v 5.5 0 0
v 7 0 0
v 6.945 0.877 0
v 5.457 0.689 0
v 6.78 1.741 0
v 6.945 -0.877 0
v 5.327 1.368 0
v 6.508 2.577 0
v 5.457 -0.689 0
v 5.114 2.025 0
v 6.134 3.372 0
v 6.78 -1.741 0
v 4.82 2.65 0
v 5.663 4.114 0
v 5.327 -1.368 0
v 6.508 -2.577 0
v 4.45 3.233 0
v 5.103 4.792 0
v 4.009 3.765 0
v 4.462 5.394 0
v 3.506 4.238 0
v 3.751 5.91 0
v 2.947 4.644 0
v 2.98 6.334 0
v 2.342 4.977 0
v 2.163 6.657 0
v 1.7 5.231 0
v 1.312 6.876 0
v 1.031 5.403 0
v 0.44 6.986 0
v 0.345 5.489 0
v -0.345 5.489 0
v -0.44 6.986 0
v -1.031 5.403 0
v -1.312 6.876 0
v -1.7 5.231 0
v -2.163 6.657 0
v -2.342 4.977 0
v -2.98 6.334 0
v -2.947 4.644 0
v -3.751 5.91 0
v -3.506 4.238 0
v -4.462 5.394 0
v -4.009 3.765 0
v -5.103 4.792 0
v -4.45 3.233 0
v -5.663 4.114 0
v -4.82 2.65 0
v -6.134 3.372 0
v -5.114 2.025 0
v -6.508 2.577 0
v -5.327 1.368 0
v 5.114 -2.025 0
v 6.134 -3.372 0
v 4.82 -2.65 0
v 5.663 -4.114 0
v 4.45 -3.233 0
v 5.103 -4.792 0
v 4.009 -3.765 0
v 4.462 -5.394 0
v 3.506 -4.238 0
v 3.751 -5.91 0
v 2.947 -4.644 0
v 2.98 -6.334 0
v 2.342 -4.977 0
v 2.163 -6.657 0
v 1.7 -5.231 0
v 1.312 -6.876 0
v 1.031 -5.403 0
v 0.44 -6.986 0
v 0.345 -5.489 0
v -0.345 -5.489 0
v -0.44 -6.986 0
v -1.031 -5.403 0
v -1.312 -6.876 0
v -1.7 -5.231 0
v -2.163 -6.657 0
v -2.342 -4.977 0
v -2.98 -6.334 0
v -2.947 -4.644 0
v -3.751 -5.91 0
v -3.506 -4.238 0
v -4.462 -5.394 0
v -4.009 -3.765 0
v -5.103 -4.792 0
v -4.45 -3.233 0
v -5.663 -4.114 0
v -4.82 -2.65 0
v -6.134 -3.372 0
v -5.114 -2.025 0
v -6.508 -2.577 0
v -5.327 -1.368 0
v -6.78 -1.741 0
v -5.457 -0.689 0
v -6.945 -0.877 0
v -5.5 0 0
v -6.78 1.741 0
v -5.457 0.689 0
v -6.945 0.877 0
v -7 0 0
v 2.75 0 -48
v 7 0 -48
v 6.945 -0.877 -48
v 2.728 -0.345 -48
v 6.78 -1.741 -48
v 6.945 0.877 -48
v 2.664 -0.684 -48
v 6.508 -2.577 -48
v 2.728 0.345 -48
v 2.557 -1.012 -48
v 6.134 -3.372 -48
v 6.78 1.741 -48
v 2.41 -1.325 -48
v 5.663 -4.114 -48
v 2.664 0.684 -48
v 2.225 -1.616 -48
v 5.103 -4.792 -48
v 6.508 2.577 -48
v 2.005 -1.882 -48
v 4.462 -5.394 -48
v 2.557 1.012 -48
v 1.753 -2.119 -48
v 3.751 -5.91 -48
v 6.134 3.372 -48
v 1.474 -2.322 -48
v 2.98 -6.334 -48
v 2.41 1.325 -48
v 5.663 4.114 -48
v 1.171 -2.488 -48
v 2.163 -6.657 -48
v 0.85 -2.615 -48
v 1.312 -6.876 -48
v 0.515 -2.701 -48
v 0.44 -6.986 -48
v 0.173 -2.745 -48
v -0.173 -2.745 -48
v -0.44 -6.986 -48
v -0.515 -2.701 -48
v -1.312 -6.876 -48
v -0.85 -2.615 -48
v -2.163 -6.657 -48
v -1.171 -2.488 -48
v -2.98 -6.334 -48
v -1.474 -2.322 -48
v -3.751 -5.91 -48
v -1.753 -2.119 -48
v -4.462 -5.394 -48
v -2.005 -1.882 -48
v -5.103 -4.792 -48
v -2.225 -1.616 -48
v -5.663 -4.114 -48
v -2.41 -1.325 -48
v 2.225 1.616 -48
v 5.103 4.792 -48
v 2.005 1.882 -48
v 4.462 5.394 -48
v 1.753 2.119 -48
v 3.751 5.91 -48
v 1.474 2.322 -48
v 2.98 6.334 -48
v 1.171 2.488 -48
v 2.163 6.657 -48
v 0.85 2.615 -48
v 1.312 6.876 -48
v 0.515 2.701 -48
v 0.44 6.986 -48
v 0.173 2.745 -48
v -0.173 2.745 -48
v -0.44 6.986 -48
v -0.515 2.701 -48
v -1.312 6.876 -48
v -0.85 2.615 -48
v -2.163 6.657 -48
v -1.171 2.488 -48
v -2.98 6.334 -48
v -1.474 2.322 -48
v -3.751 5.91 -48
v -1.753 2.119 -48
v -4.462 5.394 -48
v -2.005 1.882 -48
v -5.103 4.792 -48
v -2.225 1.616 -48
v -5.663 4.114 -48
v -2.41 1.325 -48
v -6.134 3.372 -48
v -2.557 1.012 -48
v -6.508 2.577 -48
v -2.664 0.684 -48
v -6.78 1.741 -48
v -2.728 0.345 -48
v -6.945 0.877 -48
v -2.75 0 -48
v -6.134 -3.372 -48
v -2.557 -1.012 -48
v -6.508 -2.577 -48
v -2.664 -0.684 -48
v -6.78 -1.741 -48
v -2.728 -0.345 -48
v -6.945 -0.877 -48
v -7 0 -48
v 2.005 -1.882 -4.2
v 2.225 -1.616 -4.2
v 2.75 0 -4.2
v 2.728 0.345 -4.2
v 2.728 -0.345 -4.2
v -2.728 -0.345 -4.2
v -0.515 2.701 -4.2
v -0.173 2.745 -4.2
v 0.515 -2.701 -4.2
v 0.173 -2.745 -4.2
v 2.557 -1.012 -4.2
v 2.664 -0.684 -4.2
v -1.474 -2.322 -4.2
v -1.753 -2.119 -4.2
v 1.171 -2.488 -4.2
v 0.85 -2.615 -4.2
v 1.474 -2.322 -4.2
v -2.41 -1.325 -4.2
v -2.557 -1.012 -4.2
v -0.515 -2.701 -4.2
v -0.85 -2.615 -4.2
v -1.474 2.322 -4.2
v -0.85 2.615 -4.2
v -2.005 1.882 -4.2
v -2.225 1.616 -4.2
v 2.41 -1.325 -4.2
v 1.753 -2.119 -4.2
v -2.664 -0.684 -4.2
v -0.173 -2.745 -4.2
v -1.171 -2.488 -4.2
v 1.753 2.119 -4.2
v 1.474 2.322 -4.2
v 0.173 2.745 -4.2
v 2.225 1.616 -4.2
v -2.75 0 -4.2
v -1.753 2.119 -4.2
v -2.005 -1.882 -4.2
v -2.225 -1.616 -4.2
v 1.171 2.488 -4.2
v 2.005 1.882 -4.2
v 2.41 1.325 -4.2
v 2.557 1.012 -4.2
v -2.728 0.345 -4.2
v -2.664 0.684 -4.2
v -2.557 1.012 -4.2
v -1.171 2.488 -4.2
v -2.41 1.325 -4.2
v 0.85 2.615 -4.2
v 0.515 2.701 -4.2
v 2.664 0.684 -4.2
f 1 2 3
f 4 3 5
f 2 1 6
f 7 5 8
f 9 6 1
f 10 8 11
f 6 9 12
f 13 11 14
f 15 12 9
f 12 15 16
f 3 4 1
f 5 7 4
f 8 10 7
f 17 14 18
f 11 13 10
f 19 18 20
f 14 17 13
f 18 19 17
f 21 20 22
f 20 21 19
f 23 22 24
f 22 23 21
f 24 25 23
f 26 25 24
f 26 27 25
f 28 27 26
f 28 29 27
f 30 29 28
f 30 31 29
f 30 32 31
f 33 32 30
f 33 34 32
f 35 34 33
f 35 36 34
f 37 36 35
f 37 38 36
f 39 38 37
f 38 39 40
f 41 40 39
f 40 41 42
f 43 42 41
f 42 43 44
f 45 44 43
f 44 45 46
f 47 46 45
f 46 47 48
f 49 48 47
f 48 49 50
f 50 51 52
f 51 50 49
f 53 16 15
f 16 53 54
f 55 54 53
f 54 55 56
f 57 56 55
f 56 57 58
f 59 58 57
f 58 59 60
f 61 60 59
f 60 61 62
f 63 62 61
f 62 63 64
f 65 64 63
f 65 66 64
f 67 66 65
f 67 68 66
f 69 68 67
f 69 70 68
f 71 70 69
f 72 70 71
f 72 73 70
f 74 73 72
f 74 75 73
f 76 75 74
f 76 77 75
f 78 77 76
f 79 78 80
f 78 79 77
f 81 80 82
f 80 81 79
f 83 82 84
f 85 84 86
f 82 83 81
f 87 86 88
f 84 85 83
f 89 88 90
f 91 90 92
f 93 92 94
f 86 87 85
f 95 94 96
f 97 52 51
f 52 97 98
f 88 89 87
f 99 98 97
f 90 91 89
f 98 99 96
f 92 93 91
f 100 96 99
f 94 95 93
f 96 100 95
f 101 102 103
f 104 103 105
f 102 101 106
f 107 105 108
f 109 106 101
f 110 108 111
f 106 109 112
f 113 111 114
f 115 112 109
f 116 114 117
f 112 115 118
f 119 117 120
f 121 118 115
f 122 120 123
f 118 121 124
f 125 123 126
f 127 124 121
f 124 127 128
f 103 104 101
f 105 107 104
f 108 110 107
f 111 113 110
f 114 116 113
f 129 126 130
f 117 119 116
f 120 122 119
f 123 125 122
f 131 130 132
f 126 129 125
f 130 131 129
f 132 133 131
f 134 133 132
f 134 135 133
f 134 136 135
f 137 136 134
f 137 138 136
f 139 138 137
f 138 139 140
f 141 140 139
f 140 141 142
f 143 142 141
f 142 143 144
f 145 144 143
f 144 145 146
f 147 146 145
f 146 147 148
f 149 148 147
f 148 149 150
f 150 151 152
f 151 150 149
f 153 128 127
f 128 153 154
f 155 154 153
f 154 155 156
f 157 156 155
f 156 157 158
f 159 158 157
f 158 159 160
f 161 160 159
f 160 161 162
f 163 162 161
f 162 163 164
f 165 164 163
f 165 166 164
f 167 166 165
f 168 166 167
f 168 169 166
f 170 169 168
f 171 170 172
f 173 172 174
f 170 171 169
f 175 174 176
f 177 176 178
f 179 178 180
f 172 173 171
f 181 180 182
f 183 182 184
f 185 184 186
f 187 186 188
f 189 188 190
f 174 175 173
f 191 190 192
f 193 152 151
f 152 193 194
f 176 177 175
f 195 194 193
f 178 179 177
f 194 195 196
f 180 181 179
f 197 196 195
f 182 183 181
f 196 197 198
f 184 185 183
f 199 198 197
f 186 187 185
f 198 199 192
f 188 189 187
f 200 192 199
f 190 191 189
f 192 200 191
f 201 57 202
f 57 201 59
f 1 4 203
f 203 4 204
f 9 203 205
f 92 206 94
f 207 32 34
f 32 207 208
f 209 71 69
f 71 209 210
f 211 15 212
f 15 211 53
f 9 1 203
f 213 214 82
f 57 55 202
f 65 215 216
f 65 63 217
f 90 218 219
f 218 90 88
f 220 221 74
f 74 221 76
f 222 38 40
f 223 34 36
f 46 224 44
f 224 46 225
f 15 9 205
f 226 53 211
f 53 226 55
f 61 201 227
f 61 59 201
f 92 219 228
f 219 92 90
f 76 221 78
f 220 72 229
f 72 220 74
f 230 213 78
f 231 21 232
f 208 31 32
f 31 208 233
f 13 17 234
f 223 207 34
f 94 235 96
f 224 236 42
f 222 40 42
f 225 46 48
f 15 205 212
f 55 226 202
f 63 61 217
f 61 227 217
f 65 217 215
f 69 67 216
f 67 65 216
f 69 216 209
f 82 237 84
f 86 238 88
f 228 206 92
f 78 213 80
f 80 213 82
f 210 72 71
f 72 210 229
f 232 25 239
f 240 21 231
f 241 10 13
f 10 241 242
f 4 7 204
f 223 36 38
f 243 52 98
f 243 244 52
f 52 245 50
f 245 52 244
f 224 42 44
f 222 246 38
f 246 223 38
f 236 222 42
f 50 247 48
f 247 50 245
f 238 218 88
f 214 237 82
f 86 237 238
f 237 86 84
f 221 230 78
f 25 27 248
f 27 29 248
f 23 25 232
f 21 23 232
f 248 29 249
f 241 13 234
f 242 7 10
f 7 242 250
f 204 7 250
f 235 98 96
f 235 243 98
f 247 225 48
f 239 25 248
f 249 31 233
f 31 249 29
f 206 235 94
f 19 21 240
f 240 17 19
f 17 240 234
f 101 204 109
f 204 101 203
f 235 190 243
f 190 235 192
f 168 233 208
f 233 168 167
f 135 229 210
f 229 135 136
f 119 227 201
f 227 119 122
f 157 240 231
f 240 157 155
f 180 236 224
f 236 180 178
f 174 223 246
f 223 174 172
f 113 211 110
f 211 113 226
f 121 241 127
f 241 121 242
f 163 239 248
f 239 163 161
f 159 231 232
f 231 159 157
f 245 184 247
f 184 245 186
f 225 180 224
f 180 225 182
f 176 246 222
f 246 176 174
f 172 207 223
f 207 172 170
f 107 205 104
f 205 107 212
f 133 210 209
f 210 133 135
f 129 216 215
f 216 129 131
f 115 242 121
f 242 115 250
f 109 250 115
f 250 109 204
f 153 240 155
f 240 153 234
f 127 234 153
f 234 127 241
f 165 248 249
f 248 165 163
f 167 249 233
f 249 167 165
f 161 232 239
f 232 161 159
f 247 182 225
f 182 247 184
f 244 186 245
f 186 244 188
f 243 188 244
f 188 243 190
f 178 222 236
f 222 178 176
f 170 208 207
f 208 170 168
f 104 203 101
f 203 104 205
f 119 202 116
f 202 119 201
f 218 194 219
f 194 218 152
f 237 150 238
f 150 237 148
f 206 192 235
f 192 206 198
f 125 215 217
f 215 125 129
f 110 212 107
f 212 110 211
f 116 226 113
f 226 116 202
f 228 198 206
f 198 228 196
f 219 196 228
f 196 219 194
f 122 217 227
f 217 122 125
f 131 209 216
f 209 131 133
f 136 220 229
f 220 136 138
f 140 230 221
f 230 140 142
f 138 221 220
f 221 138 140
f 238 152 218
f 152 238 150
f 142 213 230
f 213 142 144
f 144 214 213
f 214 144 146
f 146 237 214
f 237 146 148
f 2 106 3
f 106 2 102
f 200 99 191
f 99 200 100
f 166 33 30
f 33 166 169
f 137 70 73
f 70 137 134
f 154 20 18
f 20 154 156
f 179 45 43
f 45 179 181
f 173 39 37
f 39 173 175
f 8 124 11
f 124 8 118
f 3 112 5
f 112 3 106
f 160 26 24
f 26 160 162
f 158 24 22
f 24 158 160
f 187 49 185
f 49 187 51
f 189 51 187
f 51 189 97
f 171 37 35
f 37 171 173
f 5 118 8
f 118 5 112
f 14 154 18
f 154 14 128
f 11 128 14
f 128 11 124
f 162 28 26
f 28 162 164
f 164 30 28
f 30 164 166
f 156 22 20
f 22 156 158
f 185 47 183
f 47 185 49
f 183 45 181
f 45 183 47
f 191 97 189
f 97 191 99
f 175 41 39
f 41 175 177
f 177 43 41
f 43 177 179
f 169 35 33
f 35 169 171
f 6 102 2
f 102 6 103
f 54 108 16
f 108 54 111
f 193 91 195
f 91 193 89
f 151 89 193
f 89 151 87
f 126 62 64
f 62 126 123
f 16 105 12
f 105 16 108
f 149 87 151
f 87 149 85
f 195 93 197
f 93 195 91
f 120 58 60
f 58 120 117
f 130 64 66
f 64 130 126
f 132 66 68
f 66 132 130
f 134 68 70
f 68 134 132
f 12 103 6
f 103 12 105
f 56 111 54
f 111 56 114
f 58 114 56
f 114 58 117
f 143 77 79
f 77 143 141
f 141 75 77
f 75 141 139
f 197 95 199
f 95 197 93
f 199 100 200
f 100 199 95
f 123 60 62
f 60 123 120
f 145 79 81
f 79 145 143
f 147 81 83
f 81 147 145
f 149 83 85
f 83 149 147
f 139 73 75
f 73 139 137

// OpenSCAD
$fn = 50;


difference() {
	union() {
		translate(v = [0, 0, -48.0000000000]) {
			cylinder(h = 48, r = 7.0000000000);
		}
		cylinder(h = 0, r = 10.0000000000);
	}
	union() {
		translate(v = [0, 0, 0]) {
			rotate(a = [0, 0, 0]) {
				difference() {
					union() {
						#translate(v = [0, 0, -48.0000000000]) {
							cylinder(h = 48, r = 2.2500000000);
						}
						#translate(v = [0, 0, -4.2000000000]) {
							cylinder(h = 4.2000000000, r1 = 2.7500000000, r2 = 5.5000000000);
						}
						#translate(v = [0, 0, -48.0000000000]) {
							cylinder(h = 48, r = 2.7500000000);
						}
						#translate(v = [0, 0, -48.0000000000]) {
							cylinder(h = 48, r = 2.2500000000);
						}
					}
					union();
				}
			}
		}
	}
}
